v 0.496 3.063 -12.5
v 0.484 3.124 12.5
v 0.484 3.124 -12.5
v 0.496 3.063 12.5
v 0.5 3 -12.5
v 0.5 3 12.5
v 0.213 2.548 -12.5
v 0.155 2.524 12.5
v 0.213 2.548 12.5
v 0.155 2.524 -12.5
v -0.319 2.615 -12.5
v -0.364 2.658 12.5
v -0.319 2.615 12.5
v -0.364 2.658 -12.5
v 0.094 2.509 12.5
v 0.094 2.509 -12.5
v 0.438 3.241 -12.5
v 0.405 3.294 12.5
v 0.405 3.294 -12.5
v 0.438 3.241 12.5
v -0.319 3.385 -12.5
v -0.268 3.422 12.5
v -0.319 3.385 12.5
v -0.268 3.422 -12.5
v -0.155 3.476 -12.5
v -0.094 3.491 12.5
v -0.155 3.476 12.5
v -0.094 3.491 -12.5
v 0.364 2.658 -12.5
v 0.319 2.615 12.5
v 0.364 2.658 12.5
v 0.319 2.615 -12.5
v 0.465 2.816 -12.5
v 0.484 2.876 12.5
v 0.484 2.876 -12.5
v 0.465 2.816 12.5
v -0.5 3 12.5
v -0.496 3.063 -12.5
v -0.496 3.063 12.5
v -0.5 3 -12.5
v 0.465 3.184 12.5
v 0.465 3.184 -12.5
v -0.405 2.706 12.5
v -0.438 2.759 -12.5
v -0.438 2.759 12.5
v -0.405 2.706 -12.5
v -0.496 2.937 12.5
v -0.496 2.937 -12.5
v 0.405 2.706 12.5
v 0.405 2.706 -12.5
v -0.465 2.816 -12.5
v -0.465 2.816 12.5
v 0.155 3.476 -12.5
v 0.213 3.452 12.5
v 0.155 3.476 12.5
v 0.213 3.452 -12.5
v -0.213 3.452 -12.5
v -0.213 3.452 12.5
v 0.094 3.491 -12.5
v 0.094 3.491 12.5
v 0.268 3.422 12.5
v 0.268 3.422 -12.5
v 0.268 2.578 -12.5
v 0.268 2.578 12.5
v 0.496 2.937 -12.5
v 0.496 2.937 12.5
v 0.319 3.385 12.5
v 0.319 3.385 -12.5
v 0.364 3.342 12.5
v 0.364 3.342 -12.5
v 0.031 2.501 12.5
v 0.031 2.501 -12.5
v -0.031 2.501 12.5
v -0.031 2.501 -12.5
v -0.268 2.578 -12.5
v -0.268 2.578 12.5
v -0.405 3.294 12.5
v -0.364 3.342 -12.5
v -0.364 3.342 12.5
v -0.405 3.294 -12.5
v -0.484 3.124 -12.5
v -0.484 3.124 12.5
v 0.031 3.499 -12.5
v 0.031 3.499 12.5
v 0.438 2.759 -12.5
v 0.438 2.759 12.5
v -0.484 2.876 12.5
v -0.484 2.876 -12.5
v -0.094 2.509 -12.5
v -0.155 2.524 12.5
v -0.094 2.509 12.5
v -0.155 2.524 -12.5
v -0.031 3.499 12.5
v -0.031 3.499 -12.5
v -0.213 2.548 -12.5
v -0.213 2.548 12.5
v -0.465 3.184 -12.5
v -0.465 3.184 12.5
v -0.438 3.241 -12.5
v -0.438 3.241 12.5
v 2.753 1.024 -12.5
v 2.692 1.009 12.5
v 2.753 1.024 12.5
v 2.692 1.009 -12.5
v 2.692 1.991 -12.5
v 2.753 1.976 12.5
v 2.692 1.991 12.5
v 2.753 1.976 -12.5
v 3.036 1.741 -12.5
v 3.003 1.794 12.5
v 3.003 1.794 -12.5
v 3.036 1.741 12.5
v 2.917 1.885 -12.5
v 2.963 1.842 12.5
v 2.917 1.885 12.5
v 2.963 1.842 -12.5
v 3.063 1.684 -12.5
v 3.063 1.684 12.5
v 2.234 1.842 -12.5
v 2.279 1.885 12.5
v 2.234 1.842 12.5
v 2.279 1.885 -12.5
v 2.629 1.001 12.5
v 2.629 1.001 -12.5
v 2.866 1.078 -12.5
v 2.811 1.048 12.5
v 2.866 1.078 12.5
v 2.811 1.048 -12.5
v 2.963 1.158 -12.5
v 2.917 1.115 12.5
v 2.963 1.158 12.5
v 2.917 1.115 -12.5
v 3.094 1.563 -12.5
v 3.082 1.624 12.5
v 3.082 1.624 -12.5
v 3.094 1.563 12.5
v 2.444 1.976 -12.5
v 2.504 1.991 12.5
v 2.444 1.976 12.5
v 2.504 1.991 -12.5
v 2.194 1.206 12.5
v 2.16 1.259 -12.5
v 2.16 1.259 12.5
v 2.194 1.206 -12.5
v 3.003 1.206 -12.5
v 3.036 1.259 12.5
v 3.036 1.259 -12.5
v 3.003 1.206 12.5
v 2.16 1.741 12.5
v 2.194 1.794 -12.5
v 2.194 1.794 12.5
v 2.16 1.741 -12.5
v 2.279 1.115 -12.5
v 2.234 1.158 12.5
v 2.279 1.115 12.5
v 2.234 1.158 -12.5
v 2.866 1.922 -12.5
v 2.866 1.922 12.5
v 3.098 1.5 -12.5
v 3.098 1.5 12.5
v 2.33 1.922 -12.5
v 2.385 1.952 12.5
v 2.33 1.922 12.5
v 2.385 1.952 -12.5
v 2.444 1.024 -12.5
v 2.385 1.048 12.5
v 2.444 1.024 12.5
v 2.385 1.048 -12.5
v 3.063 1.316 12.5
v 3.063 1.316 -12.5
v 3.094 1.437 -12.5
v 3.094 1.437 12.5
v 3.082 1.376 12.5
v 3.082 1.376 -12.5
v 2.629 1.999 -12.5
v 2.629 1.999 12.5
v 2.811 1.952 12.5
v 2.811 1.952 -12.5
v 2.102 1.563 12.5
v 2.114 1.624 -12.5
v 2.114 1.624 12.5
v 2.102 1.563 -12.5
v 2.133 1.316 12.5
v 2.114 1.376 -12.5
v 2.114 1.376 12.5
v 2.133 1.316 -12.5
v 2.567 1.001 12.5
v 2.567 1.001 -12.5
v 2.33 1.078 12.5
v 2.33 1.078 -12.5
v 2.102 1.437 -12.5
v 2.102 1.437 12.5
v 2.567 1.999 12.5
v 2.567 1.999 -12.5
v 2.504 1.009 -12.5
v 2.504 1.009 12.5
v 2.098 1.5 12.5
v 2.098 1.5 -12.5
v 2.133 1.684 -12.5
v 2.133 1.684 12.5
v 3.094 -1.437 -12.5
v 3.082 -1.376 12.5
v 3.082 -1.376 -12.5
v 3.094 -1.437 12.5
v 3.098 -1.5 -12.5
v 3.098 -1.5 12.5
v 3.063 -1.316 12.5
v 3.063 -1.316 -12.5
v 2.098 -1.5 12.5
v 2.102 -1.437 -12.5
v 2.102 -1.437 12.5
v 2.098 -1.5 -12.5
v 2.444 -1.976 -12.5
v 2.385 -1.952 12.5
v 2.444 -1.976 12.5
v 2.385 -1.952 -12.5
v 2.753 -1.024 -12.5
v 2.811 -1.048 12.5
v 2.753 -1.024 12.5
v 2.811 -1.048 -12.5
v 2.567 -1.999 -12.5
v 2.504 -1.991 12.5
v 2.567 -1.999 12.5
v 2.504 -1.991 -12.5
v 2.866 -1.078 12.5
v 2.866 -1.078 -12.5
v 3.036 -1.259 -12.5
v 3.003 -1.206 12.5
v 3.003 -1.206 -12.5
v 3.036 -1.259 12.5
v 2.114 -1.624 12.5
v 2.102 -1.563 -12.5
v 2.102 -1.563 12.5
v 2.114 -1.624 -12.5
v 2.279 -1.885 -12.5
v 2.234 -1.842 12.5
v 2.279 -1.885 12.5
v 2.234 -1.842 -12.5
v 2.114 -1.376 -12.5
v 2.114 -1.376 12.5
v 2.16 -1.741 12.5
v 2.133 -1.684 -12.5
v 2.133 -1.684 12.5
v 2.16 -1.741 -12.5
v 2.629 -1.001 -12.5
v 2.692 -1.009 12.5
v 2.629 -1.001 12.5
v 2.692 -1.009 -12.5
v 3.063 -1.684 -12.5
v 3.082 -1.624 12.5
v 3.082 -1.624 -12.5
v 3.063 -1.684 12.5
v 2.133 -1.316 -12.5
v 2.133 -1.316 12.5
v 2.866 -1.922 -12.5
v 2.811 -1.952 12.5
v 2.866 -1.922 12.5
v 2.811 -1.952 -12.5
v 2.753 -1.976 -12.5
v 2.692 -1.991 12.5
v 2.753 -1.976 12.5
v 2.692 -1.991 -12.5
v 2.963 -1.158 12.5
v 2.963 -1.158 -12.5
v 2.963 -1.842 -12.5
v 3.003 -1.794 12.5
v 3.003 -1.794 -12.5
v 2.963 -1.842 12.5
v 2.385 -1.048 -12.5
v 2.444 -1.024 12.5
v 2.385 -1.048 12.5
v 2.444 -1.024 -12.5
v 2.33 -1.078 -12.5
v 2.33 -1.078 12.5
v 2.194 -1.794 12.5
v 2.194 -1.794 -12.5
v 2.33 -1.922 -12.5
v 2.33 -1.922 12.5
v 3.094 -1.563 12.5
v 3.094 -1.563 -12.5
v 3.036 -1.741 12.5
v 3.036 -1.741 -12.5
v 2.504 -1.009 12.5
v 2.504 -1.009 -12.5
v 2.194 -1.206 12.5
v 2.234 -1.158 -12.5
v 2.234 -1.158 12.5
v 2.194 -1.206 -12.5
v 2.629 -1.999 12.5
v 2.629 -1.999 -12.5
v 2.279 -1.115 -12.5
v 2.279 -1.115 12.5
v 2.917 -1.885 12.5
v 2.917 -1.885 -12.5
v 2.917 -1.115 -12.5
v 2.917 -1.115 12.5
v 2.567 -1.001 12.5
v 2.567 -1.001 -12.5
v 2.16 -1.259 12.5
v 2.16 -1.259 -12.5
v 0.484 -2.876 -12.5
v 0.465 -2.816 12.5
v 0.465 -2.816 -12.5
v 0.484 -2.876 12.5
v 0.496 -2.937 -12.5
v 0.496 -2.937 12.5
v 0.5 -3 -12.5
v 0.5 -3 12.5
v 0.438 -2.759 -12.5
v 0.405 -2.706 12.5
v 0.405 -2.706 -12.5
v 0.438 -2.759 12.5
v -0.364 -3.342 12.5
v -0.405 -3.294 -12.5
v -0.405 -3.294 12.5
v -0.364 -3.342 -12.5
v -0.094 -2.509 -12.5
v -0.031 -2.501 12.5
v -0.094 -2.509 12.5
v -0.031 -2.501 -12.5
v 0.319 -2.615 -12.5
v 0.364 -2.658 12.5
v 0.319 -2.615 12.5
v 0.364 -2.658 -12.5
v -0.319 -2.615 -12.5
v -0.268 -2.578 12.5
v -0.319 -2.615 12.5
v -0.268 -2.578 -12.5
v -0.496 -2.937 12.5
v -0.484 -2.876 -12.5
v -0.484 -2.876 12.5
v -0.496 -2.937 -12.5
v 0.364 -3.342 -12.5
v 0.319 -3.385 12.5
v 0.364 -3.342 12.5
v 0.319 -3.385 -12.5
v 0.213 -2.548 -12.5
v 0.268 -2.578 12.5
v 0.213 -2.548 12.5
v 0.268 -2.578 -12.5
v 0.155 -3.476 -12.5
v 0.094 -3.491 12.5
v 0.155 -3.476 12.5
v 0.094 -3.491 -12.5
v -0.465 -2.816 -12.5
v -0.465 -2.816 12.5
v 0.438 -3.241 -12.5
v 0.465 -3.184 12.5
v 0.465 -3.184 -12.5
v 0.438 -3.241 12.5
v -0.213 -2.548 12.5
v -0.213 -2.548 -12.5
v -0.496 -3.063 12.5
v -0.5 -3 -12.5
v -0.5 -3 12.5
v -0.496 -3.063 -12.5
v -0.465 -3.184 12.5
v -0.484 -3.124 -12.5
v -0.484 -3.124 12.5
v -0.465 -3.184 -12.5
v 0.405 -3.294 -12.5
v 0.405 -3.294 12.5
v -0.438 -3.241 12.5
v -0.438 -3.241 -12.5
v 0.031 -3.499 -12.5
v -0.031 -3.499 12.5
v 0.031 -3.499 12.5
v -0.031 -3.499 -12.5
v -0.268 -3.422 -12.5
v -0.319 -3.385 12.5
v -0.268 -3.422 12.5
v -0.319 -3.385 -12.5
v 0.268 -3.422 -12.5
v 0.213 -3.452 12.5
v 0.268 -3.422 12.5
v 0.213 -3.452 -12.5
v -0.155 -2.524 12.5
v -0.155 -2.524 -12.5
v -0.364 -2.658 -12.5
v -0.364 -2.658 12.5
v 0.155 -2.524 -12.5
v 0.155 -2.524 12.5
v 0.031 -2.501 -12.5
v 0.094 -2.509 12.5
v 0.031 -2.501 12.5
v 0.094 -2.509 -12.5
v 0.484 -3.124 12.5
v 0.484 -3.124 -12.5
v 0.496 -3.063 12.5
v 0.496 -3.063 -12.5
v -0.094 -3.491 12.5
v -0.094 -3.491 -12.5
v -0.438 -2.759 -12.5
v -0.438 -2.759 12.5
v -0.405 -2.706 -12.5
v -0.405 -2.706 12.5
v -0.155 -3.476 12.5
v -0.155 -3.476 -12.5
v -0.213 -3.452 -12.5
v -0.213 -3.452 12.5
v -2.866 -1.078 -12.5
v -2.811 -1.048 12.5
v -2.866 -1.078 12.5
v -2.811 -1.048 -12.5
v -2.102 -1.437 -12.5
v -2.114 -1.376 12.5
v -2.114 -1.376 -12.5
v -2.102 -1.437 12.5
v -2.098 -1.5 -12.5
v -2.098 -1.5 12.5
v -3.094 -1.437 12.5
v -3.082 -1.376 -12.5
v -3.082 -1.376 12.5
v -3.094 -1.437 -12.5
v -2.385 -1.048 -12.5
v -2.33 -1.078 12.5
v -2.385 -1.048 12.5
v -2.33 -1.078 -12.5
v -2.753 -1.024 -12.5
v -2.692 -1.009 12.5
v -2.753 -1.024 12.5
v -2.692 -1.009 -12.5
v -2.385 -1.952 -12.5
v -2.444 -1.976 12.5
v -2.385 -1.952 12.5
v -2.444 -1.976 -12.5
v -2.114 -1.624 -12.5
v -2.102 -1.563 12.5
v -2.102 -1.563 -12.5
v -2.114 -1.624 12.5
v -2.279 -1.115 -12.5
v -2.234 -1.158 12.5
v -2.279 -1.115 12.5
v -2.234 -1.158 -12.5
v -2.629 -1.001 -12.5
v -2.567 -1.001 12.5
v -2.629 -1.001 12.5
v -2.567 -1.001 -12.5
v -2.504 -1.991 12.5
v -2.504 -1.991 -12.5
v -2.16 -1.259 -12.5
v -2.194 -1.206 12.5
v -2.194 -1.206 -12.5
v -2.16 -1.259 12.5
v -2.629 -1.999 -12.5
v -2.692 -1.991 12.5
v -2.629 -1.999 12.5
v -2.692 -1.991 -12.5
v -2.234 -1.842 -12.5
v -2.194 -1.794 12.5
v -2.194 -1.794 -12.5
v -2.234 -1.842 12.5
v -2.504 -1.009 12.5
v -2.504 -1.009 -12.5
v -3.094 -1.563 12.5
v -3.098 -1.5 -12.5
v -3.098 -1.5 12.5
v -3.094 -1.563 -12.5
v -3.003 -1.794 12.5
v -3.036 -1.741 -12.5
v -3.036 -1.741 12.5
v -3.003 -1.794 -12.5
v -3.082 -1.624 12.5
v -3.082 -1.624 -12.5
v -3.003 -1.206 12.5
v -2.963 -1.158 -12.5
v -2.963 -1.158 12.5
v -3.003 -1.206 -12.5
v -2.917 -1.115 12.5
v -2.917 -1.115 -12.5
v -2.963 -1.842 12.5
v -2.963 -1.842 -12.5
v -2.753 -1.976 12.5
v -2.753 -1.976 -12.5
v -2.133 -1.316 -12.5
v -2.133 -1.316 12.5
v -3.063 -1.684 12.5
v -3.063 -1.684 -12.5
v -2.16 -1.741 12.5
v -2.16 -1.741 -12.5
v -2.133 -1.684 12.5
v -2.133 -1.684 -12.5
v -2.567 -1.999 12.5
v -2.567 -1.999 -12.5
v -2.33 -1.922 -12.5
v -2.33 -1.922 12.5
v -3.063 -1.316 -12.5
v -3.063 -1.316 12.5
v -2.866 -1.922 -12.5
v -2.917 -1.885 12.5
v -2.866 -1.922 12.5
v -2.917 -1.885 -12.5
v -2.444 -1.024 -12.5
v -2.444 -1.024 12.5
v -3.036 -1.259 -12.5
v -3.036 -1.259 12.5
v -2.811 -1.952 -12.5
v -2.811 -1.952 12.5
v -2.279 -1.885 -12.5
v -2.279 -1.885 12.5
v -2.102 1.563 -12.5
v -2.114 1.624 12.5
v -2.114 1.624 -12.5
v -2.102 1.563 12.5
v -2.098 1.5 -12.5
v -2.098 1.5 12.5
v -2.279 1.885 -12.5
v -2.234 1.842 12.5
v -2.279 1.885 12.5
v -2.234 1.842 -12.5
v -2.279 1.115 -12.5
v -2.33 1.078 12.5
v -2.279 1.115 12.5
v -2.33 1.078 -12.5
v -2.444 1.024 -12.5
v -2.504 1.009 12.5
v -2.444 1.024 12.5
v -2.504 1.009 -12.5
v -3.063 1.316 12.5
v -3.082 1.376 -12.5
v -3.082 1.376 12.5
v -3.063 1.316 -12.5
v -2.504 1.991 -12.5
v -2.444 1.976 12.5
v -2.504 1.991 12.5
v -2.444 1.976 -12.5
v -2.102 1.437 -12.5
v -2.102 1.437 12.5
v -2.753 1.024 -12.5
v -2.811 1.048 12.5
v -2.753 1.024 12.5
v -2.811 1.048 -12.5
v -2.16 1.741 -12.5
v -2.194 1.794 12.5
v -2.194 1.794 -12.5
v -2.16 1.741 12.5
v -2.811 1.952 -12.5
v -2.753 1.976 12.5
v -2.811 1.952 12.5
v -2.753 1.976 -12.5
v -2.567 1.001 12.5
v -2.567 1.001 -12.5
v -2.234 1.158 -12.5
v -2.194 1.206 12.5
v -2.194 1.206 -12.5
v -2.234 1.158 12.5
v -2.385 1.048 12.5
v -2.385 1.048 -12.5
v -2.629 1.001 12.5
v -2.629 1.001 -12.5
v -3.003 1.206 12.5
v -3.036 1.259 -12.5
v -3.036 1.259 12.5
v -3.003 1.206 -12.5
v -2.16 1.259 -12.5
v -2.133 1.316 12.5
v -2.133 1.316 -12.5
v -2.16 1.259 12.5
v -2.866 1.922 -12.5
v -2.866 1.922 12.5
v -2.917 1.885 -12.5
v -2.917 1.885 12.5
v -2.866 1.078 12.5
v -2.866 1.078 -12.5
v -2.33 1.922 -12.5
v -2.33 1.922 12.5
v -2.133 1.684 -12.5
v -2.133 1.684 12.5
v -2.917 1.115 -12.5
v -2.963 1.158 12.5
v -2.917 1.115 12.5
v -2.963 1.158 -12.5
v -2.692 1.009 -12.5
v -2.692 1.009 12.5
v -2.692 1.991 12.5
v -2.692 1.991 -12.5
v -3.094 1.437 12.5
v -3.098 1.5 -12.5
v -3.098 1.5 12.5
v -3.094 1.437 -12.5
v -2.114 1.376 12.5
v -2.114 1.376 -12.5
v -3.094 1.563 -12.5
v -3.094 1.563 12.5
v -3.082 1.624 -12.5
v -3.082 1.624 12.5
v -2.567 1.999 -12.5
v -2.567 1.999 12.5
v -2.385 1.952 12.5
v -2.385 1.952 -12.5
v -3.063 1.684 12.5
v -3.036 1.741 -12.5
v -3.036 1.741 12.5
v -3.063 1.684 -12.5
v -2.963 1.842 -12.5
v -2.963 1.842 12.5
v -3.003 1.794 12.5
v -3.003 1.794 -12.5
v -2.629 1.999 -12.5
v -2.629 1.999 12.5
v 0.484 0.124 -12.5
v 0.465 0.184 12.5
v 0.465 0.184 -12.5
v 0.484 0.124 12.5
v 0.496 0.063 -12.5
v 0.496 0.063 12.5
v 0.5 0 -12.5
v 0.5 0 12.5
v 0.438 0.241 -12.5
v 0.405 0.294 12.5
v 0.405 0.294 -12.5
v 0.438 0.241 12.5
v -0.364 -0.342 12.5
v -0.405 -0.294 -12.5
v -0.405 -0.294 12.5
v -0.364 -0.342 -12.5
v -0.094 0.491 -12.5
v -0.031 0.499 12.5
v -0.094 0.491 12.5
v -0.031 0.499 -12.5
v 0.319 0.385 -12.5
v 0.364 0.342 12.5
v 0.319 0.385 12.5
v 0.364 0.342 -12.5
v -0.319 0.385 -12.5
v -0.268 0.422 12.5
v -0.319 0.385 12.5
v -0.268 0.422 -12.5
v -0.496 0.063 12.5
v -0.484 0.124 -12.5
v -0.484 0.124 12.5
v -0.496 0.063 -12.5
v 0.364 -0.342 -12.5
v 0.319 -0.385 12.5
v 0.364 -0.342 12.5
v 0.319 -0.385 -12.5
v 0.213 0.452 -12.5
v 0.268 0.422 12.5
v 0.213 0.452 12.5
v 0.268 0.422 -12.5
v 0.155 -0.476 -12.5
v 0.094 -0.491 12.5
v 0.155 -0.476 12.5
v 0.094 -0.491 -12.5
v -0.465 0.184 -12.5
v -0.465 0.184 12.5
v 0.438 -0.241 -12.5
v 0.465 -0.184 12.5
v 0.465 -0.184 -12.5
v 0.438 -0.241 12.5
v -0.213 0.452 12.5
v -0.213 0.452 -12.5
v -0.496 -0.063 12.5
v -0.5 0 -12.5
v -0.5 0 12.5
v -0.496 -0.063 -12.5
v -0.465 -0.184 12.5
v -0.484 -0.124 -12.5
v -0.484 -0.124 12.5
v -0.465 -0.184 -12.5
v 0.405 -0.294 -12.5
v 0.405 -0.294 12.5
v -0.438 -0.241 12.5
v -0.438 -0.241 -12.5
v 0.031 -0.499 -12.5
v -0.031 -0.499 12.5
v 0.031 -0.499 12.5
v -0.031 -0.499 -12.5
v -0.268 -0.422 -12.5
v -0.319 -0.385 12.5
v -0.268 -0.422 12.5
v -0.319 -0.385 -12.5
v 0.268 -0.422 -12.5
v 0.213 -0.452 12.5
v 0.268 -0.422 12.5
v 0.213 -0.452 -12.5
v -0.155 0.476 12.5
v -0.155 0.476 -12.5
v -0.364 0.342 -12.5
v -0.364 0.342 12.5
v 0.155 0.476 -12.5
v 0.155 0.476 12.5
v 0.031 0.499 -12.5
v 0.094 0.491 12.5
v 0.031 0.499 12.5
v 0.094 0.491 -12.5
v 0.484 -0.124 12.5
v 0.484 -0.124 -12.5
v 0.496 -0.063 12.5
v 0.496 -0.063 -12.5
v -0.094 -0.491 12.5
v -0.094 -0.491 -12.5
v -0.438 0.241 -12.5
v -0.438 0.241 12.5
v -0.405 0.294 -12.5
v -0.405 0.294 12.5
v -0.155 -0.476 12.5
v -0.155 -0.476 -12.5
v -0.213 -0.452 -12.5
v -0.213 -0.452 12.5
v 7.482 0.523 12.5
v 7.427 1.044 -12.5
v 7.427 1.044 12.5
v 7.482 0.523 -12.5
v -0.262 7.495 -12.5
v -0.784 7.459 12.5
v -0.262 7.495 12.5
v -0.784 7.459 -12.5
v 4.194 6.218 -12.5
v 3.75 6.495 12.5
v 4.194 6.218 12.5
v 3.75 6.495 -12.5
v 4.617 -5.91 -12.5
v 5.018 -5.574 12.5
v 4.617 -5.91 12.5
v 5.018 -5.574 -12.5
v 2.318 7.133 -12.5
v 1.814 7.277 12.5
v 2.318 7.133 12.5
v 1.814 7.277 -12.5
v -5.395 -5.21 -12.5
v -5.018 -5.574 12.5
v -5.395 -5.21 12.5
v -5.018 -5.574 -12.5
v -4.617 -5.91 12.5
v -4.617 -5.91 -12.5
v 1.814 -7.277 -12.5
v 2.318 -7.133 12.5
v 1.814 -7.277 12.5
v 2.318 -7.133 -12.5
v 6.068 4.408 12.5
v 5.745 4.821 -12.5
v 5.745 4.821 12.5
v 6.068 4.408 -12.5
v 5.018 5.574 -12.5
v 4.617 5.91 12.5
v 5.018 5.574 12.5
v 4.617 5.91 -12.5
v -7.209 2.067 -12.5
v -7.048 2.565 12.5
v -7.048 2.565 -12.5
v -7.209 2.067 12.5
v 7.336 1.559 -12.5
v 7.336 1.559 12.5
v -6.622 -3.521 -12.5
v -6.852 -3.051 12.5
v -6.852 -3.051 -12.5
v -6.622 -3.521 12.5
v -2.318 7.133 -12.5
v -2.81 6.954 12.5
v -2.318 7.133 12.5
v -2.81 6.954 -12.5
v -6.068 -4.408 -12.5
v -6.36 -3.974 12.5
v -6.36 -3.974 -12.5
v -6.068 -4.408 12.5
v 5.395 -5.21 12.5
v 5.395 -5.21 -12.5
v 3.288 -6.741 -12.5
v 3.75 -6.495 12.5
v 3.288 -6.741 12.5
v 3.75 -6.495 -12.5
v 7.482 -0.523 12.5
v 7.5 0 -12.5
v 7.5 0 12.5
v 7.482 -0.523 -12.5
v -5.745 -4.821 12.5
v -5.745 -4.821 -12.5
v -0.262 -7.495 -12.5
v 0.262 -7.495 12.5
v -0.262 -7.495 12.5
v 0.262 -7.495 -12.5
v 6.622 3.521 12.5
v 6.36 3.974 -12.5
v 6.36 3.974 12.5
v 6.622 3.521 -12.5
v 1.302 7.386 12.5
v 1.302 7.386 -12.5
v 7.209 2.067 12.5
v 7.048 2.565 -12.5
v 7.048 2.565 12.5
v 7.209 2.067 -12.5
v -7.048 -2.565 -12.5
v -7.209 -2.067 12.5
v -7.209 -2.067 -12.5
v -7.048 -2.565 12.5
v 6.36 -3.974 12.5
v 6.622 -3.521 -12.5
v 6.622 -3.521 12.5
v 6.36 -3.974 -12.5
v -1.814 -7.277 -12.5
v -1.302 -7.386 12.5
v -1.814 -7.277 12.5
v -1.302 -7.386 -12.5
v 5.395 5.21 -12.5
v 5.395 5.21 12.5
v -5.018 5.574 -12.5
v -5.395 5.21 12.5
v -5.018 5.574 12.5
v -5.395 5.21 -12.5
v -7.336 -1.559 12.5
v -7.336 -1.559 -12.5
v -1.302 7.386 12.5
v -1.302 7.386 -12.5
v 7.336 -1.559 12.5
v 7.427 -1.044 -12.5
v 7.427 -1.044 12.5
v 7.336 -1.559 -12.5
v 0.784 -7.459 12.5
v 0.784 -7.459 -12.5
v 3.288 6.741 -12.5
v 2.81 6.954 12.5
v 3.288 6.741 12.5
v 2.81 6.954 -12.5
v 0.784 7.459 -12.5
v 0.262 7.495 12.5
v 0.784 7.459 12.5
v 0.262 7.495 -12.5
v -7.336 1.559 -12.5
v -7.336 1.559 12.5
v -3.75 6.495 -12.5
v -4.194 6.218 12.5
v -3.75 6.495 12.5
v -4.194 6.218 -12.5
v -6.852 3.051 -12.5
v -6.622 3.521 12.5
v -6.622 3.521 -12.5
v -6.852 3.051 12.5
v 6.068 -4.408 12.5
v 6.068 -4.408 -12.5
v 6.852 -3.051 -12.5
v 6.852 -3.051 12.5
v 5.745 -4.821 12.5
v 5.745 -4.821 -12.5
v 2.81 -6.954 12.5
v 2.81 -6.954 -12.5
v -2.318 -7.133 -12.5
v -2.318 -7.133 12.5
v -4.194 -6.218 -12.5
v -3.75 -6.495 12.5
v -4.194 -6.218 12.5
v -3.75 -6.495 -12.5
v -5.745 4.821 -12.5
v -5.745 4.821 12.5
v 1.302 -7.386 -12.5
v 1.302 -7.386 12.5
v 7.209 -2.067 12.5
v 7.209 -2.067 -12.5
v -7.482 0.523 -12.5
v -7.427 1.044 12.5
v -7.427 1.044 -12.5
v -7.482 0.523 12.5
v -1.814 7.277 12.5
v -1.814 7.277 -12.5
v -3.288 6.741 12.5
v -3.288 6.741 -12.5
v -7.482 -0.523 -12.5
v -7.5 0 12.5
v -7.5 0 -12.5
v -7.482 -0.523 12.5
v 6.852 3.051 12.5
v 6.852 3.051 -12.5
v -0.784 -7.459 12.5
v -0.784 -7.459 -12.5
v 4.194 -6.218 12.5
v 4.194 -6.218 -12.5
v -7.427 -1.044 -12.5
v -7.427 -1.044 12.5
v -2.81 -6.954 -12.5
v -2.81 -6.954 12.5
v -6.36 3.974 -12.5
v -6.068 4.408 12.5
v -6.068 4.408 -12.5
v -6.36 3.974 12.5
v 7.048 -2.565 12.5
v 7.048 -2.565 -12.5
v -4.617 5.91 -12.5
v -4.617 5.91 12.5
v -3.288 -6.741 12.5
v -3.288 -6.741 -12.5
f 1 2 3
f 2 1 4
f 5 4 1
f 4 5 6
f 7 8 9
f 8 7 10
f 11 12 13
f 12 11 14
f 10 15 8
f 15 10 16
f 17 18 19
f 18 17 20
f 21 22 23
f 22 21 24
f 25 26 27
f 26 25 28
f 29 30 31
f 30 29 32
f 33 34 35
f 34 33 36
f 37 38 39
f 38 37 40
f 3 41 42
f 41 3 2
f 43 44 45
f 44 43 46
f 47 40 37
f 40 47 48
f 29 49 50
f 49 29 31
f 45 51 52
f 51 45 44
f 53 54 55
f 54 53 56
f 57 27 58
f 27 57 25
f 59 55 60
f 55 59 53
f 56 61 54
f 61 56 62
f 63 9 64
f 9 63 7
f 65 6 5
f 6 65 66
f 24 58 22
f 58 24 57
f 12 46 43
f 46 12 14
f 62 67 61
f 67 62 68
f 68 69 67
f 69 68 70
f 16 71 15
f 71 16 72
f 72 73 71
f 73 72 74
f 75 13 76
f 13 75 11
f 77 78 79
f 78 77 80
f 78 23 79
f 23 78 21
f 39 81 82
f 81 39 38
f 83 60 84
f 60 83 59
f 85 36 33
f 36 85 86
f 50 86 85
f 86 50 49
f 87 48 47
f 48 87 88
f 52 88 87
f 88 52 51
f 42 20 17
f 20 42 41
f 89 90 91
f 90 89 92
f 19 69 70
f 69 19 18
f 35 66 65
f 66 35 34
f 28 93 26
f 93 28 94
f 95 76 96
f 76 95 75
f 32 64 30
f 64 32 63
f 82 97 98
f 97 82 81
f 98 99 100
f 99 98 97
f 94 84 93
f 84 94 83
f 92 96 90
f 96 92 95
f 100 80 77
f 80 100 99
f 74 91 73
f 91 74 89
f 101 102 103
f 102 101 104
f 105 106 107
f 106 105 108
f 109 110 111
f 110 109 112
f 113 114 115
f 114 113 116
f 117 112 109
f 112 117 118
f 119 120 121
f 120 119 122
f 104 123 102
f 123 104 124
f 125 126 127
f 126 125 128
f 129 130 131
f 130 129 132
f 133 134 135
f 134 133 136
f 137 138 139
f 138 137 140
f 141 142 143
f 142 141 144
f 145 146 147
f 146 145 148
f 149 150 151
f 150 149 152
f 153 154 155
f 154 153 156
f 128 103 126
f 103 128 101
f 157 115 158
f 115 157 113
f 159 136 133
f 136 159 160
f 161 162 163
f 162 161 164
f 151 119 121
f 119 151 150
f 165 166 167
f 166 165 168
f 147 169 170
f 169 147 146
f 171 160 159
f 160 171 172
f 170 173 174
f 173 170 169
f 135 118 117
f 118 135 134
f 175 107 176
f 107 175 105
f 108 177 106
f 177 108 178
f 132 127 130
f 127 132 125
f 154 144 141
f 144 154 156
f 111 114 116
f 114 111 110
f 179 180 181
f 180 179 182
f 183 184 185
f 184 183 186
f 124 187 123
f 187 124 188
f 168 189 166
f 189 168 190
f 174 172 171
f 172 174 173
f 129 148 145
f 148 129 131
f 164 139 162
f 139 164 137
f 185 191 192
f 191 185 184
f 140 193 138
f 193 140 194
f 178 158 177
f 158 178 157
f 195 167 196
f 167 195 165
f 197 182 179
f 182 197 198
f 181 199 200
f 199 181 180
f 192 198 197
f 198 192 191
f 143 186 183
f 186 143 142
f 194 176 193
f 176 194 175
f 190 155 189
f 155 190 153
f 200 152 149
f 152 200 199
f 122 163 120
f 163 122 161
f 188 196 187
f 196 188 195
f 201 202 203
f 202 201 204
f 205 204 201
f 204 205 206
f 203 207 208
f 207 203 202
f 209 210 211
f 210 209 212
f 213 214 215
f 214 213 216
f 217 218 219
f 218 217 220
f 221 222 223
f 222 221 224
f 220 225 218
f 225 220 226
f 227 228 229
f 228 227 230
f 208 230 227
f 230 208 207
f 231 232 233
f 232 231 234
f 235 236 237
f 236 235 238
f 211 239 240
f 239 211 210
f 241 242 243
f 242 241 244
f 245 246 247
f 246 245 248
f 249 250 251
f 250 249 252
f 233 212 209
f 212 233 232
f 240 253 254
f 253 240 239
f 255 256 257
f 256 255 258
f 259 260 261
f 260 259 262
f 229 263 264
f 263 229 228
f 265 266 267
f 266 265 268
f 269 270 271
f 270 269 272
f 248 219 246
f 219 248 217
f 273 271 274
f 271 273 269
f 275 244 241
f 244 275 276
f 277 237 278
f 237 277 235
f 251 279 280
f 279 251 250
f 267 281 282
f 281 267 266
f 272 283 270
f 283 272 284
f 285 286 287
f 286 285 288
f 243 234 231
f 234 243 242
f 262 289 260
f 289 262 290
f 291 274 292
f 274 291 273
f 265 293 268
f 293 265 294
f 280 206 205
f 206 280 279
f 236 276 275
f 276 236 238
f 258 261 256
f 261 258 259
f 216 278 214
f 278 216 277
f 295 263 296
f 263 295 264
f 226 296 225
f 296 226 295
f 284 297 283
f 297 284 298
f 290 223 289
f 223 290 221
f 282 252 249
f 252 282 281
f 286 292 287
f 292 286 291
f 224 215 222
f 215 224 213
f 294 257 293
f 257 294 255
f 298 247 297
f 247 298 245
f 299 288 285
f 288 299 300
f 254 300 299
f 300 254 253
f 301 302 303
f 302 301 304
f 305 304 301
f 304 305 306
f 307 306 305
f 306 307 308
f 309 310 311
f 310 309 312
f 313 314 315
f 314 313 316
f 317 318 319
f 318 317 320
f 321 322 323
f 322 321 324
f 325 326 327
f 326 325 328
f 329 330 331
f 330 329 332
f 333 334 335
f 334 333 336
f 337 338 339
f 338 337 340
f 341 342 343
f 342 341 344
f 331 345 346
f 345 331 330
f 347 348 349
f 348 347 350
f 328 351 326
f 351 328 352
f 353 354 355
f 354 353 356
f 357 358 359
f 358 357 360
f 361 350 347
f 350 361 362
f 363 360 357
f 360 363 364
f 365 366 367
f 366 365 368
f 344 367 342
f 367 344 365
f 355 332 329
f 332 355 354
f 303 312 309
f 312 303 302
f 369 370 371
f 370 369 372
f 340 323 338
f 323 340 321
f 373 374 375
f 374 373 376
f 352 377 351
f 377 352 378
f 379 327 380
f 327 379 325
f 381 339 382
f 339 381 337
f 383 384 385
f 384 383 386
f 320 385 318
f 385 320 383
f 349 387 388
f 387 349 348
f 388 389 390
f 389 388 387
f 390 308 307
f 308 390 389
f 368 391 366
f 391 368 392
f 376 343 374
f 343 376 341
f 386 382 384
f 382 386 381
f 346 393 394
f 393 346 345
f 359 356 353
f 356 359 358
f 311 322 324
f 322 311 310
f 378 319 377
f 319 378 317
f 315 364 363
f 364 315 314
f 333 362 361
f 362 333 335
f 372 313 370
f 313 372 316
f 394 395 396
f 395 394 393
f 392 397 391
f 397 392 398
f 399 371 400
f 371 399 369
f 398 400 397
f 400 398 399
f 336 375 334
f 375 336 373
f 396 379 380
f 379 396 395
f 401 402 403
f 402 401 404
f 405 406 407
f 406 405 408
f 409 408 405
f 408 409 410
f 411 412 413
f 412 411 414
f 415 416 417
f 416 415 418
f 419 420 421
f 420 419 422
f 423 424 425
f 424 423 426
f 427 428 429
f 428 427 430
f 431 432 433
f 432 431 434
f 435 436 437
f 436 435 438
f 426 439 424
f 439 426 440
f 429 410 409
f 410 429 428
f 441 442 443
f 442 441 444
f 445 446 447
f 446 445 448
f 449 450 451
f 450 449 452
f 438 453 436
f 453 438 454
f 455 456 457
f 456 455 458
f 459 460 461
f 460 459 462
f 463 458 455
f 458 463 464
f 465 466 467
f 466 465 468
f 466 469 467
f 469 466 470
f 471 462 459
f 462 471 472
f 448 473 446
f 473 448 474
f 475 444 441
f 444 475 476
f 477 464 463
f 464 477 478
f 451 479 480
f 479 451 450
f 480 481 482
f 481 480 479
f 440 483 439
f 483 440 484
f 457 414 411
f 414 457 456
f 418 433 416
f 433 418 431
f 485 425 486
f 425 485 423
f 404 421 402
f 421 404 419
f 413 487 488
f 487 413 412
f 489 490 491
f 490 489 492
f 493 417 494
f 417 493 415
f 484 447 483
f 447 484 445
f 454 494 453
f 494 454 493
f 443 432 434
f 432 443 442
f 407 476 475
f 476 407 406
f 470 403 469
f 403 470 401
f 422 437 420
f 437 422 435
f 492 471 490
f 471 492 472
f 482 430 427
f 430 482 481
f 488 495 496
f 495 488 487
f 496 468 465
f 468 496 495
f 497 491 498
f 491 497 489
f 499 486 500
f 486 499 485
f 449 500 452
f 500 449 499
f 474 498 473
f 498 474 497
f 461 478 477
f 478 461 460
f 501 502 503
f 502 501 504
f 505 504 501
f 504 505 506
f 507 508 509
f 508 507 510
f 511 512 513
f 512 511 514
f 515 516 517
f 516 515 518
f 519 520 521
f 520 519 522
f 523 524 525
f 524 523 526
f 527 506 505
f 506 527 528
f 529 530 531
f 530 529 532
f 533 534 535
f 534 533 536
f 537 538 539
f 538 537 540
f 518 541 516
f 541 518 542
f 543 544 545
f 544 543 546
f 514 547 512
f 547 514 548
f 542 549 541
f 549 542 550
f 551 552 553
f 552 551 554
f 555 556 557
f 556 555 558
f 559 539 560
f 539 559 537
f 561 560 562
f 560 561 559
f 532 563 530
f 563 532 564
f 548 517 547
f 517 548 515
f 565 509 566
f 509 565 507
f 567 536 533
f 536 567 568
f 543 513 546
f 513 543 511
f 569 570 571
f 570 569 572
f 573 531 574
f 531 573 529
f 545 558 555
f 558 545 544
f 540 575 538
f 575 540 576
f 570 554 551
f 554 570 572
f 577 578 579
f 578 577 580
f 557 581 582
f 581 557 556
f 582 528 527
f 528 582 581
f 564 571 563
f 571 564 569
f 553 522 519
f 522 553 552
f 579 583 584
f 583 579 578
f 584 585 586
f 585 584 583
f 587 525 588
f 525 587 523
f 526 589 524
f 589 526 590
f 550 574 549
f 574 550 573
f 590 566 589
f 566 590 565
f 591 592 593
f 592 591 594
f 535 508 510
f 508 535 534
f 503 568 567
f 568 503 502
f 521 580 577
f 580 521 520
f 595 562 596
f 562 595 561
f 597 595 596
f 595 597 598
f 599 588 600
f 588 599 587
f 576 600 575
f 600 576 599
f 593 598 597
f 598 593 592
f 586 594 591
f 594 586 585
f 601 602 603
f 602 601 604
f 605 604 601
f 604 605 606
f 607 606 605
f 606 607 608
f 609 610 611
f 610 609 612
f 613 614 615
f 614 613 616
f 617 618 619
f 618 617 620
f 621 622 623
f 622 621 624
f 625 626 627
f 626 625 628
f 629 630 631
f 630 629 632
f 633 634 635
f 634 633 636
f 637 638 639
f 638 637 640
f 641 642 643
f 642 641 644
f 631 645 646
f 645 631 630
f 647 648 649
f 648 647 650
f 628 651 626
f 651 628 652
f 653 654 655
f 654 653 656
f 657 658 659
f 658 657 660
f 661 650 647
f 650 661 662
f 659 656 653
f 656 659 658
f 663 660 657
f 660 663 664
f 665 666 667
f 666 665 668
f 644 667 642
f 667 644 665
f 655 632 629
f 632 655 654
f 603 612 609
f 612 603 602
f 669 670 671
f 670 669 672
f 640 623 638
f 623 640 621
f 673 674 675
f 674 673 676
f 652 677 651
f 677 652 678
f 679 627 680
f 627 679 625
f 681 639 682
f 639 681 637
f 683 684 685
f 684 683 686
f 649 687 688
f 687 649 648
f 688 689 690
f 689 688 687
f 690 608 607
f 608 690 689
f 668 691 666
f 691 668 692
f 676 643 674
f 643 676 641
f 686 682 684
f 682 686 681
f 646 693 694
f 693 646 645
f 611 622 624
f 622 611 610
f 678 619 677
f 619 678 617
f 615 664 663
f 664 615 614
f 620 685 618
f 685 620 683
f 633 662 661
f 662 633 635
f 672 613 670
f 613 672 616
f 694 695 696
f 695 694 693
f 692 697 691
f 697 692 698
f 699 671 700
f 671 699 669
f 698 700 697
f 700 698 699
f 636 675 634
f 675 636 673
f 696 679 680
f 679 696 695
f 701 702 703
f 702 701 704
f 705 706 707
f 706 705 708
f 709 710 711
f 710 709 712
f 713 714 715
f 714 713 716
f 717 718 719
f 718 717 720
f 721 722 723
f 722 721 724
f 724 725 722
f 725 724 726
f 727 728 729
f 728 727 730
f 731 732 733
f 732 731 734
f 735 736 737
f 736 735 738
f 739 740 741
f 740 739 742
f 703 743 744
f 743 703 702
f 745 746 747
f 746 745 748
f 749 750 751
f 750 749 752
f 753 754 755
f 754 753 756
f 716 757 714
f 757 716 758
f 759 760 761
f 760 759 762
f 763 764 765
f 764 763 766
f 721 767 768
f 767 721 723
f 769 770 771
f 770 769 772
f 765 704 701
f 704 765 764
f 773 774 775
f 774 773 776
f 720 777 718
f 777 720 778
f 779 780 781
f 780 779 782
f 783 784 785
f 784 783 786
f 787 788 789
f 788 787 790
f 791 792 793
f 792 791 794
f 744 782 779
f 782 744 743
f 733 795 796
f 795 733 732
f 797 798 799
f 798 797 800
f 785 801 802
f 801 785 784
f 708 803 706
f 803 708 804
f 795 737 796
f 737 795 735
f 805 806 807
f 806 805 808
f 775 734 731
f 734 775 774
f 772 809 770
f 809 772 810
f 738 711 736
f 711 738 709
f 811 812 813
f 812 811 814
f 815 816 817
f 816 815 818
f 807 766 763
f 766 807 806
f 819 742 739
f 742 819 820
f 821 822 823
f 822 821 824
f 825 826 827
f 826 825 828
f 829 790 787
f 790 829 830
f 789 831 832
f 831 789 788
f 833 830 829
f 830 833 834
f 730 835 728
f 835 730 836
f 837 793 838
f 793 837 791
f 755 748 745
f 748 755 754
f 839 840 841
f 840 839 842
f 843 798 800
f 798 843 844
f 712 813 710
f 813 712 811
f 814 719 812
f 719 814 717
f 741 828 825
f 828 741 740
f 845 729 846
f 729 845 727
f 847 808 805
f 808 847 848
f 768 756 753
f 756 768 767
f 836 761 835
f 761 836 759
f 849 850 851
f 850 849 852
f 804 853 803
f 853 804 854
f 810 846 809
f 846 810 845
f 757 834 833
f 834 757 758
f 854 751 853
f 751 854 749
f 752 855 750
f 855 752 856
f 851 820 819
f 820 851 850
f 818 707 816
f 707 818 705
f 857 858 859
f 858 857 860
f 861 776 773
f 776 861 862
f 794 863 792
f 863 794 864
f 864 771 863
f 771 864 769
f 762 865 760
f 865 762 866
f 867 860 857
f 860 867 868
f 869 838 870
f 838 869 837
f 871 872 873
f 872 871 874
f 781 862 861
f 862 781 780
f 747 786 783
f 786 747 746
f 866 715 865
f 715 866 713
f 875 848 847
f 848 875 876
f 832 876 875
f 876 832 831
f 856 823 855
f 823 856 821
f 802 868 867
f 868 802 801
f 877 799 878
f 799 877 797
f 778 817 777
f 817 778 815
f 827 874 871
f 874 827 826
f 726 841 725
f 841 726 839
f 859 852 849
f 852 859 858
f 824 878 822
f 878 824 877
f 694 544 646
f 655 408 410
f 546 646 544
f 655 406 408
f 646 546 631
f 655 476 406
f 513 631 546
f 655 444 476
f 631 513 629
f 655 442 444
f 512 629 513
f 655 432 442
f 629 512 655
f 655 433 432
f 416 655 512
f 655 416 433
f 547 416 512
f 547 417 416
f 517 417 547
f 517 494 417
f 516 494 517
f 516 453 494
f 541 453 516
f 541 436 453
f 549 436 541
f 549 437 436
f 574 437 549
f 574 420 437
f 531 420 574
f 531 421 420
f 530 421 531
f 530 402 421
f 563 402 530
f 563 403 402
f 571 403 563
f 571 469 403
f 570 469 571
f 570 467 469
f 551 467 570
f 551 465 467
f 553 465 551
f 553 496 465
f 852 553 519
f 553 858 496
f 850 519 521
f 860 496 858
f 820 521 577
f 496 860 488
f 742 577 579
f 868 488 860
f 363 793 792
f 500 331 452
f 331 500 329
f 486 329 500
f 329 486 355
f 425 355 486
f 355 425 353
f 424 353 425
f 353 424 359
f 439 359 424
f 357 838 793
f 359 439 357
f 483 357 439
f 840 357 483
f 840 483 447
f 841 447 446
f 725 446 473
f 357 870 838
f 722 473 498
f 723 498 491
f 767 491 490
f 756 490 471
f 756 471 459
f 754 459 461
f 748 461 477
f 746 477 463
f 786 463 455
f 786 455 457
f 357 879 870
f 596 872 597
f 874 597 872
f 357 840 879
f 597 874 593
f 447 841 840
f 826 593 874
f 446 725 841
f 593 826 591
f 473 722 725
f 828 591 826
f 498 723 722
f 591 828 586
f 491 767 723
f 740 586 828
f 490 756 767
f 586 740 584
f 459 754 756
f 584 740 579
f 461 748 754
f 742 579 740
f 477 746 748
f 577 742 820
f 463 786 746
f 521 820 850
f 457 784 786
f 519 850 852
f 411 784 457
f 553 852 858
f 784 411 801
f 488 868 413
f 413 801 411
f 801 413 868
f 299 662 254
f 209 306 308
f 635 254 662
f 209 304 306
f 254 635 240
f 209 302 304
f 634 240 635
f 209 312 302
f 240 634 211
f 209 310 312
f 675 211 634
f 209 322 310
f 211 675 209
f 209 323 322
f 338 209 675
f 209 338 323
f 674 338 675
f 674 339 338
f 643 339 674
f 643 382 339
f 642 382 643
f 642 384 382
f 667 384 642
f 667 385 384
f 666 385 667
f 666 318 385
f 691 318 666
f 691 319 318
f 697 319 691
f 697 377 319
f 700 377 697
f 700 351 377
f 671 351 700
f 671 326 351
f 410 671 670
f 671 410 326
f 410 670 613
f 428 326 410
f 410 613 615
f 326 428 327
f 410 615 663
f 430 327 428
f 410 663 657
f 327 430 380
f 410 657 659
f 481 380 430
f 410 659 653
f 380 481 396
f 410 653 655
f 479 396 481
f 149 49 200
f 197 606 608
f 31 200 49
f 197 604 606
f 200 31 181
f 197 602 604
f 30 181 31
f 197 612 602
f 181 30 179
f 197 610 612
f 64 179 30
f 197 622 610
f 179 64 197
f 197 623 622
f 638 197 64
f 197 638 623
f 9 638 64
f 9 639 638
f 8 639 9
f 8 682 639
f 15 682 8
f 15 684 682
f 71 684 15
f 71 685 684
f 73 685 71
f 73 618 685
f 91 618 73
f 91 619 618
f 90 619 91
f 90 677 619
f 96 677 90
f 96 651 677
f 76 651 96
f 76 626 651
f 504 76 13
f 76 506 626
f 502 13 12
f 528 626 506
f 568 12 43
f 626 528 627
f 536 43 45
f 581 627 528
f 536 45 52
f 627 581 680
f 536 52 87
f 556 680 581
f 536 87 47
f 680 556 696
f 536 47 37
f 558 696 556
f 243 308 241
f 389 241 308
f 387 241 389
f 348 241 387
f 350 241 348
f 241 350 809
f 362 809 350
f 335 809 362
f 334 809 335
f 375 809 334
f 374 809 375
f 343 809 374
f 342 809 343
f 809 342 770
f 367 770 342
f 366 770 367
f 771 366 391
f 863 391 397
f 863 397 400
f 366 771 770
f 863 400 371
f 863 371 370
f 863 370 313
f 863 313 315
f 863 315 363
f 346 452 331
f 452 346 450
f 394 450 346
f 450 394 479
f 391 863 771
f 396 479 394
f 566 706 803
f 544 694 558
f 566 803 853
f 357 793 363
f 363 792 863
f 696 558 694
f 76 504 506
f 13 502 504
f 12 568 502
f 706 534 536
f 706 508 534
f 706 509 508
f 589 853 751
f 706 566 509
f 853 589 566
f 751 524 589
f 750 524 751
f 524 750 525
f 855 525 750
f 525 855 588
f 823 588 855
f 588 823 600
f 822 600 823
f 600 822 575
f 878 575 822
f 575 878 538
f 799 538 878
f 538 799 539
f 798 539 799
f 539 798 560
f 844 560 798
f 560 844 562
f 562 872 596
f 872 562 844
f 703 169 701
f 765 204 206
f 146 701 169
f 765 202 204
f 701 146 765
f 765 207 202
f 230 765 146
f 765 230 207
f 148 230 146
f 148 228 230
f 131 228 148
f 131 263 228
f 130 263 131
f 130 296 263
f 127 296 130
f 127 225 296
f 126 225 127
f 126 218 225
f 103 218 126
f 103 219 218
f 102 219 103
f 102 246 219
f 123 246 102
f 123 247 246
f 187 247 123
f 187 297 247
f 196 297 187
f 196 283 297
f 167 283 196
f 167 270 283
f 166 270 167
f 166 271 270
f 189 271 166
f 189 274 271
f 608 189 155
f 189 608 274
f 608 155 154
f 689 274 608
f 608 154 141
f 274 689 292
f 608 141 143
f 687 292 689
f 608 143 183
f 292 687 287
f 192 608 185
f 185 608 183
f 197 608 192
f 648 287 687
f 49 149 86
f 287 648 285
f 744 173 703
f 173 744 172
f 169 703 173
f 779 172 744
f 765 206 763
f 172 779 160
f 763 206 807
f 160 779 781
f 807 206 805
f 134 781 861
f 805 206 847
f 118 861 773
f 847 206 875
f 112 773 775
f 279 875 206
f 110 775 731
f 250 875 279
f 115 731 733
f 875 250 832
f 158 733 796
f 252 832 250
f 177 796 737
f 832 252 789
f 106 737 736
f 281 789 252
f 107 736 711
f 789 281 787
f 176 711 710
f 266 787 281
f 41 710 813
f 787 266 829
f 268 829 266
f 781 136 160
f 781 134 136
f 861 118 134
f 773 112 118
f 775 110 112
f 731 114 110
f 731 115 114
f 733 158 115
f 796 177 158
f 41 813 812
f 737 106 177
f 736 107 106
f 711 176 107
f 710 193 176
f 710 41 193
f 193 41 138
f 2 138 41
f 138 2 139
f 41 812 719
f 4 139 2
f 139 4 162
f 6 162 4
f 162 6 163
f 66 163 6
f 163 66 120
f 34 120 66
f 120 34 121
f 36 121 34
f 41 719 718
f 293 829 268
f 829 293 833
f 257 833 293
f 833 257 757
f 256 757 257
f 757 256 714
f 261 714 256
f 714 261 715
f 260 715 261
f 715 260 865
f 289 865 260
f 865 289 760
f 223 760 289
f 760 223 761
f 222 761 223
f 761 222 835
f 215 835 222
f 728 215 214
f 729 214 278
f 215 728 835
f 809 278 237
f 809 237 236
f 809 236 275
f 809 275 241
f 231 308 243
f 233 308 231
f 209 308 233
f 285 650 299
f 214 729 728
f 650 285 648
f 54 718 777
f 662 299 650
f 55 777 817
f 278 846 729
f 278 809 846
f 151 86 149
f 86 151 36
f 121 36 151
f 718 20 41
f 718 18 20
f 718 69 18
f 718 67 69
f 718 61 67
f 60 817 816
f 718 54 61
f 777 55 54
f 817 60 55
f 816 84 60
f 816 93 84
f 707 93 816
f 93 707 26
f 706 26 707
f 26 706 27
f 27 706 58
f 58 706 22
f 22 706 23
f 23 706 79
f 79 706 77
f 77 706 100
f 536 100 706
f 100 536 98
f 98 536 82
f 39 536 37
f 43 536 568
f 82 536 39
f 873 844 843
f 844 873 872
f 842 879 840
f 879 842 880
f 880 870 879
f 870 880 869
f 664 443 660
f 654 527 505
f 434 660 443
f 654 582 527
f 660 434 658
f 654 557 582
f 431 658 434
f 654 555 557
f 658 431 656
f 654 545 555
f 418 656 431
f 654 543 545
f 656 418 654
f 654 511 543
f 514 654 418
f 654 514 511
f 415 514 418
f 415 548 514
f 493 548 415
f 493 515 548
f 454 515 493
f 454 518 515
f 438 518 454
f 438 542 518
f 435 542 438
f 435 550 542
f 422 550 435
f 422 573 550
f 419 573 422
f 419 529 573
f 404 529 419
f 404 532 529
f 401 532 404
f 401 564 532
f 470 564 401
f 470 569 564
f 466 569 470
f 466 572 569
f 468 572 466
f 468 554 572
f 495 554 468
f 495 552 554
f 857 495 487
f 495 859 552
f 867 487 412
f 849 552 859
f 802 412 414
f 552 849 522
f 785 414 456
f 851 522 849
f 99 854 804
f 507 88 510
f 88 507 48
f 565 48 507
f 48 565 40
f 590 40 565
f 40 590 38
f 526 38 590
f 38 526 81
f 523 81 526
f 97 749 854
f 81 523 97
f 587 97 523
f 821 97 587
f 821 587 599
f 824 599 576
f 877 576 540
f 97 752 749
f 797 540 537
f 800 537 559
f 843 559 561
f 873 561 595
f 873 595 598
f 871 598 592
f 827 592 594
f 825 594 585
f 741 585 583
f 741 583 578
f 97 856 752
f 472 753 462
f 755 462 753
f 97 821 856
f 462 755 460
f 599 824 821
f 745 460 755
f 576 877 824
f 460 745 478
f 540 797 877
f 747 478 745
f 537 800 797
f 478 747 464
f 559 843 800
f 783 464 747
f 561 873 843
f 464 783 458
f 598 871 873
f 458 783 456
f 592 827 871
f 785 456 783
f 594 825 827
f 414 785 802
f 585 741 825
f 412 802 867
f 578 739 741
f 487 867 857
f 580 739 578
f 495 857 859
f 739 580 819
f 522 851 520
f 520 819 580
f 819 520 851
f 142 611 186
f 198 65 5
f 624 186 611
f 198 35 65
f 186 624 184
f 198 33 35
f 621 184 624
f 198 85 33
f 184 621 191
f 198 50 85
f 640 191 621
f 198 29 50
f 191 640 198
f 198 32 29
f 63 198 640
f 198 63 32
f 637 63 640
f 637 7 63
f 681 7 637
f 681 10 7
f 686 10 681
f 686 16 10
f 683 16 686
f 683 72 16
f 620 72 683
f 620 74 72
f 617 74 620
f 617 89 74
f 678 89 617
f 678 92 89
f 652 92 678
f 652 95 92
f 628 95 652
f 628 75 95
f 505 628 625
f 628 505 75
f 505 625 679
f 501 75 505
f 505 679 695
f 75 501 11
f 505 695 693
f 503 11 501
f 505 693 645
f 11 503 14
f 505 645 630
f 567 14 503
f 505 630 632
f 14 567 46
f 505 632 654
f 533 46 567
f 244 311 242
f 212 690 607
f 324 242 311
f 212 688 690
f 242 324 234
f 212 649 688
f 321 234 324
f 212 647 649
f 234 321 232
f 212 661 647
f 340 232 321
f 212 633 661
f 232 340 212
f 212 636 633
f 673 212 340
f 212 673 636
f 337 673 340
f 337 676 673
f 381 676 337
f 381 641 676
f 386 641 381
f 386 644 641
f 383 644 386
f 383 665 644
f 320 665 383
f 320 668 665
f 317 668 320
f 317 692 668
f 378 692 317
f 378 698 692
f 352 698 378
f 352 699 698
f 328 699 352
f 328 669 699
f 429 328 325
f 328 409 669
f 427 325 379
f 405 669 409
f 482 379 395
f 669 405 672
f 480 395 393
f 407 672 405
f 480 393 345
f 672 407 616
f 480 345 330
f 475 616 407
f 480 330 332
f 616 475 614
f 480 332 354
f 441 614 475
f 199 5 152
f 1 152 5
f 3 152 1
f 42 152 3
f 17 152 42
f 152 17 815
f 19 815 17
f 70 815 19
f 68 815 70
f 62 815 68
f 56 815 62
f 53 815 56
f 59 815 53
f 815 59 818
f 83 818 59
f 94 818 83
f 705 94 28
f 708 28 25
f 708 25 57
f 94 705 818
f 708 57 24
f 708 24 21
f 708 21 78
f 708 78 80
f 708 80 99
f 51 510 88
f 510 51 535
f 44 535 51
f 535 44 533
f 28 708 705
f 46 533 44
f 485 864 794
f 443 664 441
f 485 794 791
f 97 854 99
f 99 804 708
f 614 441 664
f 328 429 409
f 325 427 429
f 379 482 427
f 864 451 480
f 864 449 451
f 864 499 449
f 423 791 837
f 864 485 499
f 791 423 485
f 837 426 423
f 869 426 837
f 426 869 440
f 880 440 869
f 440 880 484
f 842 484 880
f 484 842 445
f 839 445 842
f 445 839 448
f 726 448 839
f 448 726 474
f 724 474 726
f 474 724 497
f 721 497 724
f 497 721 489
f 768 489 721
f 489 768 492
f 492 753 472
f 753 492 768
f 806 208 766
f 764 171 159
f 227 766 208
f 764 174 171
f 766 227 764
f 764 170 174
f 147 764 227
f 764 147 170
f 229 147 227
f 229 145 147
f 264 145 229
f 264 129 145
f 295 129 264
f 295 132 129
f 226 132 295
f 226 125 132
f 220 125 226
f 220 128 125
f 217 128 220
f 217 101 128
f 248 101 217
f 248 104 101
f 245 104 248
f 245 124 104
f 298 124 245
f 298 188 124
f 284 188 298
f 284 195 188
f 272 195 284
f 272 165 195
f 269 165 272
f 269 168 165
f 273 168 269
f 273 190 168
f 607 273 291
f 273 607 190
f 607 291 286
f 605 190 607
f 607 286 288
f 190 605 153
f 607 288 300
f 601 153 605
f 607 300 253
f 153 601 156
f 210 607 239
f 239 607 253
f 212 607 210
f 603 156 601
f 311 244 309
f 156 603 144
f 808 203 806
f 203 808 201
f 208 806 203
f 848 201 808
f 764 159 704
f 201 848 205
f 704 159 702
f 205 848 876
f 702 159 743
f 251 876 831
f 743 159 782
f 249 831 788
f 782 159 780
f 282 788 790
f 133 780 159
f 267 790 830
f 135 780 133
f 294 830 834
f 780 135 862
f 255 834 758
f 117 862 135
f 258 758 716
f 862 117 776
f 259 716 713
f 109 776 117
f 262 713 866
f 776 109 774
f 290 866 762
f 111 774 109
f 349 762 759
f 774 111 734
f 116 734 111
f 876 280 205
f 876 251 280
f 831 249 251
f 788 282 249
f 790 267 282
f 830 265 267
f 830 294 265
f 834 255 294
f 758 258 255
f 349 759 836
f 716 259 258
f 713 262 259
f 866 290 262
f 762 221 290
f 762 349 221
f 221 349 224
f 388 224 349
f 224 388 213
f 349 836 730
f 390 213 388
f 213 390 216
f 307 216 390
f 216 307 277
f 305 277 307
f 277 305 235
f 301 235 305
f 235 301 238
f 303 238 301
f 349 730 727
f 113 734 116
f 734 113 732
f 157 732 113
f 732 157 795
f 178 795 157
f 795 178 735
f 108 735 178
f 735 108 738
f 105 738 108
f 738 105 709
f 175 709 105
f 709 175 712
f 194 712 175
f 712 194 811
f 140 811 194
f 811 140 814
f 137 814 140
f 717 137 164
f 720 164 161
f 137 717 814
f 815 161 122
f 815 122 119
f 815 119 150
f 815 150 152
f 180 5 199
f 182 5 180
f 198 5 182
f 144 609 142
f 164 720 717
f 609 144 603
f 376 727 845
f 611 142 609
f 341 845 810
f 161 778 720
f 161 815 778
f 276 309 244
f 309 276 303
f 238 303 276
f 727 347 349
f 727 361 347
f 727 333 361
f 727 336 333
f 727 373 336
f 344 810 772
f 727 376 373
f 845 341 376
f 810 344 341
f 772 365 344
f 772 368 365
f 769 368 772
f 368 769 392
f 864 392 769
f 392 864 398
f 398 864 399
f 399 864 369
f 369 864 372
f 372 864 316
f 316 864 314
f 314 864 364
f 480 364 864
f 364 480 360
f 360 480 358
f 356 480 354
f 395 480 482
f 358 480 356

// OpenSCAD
RADIUS=3;

module hole() {
	cylinder(h=100, d=1, $fn=50, center=true);
}

module holes() {
	hole();

	for (i=[0:(360/6):360-(360/6)]) {
		translate([sin(i) * RADIUS, cos(i) * RADIUS, 0])
		hole();
	}
}

difference() {
	cylinder(d=15, h=25, center=true, $fn=90);

	holes();
}
